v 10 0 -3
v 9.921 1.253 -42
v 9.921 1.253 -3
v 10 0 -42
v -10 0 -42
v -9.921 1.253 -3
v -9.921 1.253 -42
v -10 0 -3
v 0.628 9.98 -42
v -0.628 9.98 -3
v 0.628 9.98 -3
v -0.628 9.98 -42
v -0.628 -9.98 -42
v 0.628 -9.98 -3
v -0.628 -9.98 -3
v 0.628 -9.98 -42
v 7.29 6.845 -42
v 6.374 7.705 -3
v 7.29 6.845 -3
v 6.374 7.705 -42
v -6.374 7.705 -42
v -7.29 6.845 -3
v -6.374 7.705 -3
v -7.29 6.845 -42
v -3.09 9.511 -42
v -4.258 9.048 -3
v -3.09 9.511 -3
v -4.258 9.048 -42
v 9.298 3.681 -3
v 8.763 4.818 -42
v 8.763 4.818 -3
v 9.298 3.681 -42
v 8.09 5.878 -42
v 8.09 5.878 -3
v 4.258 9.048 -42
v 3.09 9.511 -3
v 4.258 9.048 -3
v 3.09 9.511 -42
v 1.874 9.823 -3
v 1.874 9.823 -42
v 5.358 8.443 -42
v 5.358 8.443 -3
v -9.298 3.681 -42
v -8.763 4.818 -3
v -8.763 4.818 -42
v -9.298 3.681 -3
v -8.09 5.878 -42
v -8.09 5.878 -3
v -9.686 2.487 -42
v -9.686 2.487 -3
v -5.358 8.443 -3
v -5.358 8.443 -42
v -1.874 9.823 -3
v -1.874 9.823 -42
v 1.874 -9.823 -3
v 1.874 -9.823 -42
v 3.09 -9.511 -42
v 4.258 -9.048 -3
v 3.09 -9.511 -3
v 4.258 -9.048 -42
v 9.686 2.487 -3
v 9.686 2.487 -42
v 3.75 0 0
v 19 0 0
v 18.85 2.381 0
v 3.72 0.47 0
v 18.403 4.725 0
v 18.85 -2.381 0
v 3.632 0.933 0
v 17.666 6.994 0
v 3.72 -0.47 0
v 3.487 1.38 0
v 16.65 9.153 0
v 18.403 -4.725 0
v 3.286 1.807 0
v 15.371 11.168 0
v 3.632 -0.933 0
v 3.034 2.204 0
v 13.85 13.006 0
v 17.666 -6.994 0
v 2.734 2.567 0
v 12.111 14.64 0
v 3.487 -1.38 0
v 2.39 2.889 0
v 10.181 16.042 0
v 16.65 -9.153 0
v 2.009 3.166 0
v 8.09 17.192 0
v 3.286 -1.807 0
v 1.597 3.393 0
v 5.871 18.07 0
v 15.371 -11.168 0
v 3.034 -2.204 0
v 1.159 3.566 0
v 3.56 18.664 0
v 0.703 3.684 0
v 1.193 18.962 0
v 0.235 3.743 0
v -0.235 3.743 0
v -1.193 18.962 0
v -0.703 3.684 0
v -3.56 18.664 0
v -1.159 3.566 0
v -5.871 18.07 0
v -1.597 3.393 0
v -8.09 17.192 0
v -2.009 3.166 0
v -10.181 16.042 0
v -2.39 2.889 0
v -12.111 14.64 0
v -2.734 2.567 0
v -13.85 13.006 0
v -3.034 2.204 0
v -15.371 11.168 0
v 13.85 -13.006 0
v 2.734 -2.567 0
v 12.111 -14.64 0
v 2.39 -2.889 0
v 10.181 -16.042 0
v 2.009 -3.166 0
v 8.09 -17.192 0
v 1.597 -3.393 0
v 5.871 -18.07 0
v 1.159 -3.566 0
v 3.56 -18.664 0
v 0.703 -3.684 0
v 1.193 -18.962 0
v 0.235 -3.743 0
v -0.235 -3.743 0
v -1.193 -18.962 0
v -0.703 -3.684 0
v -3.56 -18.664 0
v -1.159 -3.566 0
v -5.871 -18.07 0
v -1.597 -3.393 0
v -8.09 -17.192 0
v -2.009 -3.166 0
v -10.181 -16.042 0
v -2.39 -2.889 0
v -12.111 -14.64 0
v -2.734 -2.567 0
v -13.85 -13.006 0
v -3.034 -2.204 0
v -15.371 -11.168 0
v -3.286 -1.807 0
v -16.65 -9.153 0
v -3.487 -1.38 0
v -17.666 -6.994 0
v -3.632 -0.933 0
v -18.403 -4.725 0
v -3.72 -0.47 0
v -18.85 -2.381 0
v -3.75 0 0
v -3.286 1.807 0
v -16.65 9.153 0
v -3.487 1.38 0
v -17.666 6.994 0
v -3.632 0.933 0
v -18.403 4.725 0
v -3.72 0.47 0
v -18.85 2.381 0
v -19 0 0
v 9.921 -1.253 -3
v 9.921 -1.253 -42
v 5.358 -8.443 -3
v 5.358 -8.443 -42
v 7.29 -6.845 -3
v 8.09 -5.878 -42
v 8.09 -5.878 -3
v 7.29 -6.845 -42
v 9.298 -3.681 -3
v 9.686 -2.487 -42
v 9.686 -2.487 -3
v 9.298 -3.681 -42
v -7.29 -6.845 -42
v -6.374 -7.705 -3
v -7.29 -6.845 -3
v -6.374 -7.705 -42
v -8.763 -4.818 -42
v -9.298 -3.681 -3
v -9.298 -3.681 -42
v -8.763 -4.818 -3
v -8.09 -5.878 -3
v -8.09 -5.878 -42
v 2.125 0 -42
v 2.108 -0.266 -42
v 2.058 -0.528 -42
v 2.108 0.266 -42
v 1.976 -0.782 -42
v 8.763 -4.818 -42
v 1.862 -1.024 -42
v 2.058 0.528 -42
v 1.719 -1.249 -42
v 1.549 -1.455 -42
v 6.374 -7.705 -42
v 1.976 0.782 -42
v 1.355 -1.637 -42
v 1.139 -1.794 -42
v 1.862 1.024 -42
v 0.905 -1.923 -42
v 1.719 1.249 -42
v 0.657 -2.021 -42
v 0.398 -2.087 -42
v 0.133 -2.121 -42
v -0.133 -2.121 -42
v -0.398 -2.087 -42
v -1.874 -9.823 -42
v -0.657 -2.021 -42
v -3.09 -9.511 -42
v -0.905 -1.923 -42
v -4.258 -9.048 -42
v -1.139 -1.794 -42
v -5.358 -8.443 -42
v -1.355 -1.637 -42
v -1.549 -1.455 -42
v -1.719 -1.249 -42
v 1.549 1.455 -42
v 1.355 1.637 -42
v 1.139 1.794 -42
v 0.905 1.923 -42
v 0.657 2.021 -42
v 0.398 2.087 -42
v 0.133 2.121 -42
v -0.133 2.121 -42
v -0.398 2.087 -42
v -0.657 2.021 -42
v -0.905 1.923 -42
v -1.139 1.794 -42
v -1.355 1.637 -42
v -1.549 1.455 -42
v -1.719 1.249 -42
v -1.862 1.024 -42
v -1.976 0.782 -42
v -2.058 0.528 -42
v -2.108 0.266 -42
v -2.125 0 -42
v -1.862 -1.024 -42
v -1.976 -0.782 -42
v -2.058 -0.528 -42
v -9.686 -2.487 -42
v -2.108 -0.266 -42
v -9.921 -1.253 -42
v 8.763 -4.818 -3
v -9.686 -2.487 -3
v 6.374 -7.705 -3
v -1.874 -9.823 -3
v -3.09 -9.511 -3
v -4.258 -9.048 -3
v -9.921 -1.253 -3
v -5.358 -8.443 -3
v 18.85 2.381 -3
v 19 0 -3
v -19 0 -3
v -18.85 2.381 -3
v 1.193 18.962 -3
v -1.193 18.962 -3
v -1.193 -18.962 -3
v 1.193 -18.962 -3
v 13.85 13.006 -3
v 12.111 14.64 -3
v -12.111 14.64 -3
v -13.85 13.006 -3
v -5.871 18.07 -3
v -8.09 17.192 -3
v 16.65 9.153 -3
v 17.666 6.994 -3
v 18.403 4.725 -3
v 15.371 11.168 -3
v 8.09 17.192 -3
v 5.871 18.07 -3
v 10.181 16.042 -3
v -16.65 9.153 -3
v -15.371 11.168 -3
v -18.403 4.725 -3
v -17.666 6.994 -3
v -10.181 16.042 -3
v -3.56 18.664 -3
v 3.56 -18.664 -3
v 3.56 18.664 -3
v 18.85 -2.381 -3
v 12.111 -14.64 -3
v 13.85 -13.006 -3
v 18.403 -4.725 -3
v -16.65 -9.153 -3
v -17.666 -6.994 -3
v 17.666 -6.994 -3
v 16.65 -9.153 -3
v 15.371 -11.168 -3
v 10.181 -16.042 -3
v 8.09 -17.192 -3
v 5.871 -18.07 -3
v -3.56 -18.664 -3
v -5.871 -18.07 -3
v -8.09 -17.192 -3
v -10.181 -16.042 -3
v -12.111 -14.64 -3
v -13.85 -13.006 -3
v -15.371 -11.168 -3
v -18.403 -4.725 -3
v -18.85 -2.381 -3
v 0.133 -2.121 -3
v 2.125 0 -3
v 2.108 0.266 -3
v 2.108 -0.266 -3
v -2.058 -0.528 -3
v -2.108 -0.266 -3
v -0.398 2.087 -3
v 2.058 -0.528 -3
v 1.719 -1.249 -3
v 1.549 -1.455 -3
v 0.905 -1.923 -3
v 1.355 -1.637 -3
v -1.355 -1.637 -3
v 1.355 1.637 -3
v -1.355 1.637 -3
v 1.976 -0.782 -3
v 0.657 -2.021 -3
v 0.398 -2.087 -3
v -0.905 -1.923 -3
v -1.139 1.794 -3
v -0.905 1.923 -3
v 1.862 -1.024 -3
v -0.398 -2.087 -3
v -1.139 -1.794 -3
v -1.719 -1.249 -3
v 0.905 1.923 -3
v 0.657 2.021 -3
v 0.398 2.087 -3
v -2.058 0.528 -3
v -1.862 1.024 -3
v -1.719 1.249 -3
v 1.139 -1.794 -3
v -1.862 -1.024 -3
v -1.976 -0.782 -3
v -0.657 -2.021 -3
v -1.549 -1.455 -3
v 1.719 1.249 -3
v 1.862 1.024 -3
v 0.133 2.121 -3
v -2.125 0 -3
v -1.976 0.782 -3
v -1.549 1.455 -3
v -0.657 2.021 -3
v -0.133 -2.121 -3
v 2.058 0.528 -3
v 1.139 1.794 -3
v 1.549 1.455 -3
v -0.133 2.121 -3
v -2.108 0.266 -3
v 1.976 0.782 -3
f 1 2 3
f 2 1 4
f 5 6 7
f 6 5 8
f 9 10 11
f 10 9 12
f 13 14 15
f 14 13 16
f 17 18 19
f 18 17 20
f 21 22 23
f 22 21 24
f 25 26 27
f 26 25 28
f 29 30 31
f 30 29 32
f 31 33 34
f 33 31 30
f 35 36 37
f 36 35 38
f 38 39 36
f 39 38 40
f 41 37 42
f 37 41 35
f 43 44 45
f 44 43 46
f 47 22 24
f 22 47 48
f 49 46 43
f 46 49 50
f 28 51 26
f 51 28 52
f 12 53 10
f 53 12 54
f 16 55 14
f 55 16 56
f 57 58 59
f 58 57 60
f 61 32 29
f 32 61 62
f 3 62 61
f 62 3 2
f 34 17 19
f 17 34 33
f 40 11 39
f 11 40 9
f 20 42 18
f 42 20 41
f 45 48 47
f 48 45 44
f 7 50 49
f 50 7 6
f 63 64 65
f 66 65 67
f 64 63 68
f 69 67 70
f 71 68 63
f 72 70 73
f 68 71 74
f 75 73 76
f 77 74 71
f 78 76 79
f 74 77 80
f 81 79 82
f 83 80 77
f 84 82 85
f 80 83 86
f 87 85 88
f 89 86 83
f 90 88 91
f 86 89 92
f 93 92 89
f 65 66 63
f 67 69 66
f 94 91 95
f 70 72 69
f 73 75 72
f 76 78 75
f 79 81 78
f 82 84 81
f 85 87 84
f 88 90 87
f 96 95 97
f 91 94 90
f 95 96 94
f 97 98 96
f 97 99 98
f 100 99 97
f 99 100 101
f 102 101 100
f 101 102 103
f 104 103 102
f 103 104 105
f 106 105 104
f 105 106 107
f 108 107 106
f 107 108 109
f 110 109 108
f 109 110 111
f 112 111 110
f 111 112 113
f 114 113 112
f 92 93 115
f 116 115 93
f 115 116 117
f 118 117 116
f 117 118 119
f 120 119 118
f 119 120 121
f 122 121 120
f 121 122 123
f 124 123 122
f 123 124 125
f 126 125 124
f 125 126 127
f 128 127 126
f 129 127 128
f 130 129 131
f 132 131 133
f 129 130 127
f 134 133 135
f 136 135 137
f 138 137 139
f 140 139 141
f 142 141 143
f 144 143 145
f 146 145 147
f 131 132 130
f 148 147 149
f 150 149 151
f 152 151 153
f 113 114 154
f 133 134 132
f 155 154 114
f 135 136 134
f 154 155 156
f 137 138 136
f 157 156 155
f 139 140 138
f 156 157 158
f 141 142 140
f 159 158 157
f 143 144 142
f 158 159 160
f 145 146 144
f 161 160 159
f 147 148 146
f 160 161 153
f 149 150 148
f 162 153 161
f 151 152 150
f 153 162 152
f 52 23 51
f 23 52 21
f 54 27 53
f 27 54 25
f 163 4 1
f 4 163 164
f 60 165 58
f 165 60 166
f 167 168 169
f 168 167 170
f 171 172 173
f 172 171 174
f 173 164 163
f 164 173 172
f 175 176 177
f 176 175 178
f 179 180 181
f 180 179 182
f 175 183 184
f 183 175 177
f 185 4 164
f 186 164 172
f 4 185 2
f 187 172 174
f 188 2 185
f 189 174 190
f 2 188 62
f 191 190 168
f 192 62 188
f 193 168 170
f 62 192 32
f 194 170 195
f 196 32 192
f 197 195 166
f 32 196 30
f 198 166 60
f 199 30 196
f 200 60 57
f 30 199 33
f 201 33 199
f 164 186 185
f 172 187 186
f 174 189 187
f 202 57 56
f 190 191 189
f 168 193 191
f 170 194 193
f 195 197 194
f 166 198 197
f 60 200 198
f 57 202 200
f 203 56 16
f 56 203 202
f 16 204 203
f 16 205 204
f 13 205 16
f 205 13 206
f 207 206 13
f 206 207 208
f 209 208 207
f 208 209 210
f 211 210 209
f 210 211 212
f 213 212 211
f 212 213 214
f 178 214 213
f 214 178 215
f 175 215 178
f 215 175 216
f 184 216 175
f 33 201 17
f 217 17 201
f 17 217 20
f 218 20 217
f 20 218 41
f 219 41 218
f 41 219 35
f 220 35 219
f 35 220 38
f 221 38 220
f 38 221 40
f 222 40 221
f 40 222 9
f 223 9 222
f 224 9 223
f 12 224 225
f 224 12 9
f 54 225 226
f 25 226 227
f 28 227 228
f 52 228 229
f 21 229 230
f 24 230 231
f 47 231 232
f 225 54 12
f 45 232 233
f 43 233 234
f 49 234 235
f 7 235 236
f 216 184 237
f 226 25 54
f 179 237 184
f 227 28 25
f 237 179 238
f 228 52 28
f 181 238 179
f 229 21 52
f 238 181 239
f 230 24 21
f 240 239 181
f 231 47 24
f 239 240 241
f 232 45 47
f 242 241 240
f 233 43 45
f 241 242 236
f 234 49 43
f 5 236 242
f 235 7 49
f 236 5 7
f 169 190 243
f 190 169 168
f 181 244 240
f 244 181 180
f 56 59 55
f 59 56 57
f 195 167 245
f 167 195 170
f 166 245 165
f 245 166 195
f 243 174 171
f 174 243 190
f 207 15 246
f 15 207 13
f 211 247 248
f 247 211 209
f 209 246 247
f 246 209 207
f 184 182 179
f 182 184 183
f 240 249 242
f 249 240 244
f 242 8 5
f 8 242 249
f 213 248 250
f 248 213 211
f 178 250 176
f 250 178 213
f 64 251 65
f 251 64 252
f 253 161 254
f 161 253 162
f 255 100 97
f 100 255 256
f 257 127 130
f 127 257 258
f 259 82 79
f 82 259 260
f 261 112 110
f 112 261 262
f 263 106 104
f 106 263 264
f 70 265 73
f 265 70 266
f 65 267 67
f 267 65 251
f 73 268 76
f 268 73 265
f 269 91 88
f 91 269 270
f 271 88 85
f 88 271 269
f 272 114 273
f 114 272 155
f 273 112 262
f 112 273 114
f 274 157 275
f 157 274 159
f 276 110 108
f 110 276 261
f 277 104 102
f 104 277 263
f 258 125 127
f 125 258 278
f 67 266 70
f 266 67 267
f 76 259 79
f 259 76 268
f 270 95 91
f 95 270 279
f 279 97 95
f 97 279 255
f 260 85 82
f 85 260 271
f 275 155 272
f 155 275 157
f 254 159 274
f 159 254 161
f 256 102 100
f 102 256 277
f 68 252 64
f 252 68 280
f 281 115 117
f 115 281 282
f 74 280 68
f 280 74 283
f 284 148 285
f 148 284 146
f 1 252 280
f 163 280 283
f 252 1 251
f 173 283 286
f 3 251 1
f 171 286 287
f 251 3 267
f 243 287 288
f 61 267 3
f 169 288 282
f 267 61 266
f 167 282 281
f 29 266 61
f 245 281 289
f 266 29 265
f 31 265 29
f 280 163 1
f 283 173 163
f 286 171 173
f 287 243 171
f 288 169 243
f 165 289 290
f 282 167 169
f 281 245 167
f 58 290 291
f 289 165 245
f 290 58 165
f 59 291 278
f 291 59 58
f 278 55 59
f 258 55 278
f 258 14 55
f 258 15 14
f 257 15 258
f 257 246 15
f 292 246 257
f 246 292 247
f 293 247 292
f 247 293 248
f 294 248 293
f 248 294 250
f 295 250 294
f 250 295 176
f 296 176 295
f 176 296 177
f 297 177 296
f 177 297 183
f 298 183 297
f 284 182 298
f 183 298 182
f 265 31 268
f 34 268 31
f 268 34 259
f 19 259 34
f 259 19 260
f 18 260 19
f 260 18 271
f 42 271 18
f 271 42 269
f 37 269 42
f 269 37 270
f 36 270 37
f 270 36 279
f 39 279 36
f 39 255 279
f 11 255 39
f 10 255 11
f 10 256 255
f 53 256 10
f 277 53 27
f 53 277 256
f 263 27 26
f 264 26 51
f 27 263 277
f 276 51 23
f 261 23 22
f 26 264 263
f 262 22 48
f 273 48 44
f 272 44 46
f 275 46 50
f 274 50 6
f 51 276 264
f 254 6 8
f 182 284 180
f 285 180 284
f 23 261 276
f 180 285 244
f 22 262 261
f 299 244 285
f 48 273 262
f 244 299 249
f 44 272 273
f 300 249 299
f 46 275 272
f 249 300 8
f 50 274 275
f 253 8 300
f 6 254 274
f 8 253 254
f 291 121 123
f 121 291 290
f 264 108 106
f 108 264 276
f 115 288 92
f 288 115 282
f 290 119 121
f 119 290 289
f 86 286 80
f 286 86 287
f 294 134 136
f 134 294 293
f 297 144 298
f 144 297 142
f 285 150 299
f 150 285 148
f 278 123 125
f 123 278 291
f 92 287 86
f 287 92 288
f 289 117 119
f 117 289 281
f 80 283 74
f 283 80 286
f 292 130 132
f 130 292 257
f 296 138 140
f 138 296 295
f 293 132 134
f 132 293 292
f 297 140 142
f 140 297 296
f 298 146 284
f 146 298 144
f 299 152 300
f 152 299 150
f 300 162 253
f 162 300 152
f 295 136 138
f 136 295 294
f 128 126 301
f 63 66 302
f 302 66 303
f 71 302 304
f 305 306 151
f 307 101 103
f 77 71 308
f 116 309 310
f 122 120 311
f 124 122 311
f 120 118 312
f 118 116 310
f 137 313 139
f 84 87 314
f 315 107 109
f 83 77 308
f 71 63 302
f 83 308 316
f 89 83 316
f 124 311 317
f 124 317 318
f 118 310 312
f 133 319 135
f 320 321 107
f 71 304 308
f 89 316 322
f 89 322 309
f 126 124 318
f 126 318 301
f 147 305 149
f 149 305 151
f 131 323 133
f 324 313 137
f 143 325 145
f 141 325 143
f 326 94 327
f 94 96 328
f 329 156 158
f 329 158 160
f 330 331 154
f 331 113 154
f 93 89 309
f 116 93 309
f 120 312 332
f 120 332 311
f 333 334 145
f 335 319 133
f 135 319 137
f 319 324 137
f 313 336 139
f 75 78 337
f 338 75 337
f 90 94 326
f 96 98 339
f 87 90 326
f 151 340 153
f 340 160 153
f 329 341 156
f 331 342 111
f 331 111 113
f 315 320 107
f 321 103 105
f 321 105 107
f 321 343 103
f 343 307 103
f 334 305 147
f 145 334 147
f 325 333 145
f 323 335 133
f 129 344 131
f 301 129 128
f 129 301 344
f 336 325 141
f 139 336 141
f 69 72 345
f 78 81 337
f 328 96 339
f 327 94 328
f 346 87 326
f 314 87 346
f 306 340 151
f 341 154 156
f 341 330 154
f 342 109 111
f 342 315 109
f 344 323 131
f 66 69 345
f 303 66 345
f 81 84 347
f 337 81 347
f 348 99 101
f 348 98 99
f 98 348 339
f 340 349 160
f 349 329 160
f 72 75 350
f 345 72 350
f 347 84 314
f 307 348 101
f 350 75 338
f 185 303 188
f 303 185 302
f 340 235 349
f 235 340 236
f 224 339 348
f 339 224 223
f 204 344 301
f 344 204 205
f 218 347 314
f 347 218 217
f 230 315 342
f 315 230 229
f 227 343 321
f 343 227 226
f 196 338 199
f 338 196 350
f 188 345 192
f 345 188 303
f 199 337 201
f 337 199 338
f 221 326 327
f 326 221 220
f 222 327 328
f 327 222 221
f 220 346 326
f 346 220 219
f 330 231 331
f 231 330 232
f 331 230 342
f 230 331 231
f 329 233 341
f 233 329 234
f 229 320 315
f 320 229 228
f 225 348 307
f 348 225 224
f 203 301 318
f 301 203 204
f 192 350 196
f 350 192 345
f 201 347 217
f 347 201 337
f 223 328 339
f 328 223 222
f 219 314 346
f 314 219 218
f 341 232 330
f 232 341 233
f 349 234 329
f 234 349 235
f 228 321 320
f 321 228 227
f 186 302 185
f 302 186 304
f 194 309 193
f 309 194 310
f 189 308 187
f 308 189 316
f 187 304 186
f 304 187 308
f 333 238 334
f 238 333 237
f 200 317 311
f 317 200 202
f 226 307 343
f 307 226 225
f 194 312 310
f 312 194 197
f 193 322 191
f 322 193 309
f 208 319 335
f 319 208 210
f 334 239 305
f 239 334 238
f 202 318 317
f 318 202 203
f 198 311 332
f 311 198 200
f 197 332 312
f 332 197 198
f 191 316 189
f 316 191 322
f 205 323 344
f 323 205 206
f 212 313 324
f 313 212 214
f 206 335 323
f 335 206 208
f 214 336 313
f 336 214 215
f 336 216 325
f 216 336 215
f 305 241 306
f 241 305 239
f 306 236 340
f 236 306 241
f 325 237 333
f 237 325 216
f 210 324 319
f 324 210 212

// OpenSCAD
$fn = 50;


difference() {
	union() {
		translate(v = [0, 0, -42.0000000000]) {
			cylinder(h = 42, r = 10.0000000000);
		}
		translate(v = [0, 0, -3.0000000000]) {
			cylinder(h = 3, r = 19.0000000000);
		}
	}
	union() {
		translate(v = [0, 0, 0]) {
			rotate(a = [0, 0, 0]) {
				difference() {
					union() {
						#translate(v = [0, 0, -42.0000000000]) {
							cylinder(h = 42, r = 2.0000000000);
						}
						#translate(v = [0, 0, -3]) {
							cylinder(h = 3, r = 10.0000000000, r1 = 2.1250000000, r2 = 3.7500000000);
						}
						#translate(v = [0, 0, -42.0000000000]) {
							cylinder(h = 42, r = 2.1250000000);
						}
						#translate(v = [0, 0, -42.0000000000]) {
							cylinder(h = 42, r = 2.0000000000);
						}
					}
					union();
				}
			}
		}
	}
}
